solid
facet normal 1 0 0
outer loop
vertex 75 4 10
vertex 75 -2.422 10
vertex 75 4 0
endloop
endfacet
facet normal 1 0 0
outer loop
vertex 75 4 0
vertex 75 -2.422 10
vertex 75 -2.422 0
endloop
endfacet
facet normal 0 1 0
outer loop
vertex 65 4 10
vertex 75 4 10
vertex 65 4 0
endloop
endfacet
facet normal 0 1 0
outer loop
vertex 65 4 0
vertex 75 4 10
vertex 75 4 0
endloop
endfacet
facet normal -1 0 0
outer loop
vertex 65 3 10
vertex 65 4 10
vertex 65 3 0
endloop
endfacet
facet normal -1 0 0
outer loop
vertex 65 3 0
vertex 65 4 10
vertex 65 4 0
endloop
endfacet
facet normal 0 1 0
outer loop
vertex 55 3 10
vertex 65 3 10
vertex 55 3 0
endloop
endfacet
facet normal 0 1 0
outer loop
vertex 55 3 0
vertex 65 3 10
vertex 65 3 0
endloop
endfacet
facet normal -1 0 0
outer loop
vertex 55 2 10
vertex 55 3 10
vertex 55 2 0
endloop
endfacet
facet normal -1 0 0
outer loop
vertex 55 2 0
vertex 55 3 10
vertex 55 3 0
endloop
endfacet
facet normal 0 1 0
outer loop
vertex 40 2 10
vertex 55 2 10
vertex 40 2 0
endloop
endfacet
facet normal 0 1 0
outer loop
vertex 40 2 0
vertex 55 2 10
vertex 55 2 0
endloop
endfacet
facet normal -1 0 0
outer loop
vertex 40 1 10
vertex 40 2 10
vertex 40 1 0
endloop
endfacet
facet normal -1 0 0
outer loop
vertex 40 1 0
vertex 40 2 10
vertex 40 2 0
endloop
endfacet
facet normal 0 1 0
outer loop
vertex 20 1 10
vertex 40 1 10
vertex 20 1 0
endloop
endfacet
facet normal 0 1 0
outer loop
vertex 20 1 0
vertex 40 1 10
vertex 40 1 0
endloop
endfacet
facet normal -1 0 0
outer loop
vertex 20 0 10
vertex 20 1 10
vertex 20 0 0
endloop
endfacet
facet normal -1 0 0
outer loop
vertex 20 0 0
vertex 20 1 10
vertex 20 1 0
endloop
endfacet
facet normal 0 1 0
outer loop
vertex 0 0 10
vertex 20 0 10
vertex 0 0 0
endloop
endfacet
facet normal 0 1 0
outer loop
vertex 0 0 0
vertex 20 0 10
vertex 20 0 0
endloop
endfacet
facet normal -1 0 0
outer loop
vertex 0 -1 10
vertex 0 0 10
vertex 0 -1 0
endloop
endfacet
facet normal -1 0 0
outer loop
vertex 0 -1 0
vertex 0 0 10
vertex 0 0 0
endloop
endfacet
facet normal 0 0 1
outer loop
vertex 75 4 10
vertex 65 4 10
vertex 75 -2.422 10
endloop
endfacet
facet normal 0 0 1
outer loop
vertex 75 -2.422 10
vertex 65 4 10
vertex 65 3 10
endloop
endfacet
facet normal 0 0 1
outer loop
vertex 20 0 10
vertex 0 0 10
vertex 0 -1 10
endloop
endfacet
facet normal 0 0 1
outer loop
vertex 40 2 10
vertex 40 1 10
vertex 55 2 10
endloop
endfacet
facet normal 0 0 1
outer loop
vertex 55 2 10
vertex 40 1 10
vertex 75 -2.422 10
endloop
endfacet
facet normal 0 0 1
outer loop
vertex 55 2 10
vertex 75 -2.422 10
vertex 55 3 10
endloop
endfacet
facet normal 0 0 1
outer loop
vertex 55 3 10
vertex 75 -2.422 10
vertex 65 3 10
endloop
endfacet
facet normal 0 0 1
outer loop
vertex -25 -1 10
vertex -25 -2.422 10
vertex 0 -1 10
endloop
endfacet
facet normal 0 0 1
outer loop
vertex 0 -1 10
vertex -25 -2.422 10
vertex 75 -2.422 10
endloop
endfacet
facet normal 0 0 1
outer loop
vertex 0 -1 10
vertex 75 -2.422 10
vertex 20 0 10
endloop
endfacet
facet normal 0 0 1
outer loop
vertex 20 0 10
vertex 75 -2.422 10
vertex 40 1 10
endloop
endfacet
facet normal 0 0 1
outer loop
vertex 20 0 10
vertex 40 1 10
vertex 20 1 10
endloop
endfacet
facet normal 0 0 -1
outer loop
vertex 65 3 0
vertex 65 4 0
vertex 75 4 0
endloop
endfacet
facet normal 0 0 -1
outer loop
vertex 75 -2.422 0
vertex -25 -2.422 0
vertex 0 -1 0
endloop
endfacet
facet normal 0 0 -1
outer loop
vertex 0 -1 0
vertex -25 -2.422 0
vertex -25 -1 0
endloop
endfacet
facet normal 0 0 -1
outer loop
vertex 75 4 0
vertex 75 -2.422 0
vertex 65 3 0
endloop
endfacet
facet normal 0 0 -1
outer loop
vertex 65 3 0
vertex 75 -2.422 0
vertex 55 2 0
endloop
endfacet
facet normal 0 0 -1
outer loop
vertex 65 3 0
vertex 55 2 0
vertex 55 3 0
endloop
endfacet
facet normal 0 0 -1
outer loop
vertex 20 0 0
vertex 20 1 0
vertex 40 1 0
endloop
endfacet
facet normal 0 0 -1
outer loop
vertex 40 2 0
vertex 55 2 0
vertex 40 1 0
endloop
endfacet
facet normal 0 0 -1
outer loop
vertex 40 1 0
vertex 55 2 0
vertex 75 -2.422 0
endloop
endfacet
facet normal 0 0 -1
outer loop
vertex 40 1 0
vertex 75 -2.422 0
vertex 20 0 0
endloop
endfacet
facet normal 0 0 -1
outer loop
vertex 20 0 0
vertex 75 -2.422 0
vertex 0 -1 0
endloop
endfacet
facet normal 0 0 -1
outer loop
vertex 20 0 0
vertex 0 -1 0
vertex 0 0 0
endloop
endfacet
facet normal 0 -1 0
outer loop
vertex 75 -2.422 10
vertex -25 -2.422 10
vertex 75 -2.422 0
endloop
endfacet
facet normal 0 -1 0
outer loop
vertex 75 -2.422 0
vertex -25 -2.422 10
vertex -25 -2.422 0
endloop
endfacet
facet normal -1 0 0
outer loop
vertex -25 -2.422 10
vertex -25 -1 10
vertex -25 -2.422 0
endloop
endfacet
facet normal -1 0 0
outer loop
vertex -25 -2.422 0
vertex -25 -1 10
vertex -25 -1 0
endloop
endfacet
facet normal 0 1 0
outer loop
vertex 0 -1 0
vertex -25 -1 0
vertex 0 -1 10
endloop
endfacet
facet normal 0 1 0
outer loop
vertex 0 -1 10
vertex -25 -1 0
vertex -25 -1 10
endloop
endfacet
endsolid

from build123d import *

# Parameters (mm, degrees)
BOSS_EXTRUDE2_DEPTH = 10


with BuildPart() as part:
    # Sketch2 → Boss-Extrude2 (new body)
    with BuildSketch(Plane.XY):
        Polygon((20, 0), (0, 0), (0, -1), (-25, -1), (-25, -2.421519289), (75, -2.421519289), (75, 4), (65, 4), (65, 3), (55, 3), (55, 2), (40, 2), (40, 1), (20, 1), align=None)
    extrude(amount=BOSS_EXTRUDE2_DEPTH)


solid = part.part
